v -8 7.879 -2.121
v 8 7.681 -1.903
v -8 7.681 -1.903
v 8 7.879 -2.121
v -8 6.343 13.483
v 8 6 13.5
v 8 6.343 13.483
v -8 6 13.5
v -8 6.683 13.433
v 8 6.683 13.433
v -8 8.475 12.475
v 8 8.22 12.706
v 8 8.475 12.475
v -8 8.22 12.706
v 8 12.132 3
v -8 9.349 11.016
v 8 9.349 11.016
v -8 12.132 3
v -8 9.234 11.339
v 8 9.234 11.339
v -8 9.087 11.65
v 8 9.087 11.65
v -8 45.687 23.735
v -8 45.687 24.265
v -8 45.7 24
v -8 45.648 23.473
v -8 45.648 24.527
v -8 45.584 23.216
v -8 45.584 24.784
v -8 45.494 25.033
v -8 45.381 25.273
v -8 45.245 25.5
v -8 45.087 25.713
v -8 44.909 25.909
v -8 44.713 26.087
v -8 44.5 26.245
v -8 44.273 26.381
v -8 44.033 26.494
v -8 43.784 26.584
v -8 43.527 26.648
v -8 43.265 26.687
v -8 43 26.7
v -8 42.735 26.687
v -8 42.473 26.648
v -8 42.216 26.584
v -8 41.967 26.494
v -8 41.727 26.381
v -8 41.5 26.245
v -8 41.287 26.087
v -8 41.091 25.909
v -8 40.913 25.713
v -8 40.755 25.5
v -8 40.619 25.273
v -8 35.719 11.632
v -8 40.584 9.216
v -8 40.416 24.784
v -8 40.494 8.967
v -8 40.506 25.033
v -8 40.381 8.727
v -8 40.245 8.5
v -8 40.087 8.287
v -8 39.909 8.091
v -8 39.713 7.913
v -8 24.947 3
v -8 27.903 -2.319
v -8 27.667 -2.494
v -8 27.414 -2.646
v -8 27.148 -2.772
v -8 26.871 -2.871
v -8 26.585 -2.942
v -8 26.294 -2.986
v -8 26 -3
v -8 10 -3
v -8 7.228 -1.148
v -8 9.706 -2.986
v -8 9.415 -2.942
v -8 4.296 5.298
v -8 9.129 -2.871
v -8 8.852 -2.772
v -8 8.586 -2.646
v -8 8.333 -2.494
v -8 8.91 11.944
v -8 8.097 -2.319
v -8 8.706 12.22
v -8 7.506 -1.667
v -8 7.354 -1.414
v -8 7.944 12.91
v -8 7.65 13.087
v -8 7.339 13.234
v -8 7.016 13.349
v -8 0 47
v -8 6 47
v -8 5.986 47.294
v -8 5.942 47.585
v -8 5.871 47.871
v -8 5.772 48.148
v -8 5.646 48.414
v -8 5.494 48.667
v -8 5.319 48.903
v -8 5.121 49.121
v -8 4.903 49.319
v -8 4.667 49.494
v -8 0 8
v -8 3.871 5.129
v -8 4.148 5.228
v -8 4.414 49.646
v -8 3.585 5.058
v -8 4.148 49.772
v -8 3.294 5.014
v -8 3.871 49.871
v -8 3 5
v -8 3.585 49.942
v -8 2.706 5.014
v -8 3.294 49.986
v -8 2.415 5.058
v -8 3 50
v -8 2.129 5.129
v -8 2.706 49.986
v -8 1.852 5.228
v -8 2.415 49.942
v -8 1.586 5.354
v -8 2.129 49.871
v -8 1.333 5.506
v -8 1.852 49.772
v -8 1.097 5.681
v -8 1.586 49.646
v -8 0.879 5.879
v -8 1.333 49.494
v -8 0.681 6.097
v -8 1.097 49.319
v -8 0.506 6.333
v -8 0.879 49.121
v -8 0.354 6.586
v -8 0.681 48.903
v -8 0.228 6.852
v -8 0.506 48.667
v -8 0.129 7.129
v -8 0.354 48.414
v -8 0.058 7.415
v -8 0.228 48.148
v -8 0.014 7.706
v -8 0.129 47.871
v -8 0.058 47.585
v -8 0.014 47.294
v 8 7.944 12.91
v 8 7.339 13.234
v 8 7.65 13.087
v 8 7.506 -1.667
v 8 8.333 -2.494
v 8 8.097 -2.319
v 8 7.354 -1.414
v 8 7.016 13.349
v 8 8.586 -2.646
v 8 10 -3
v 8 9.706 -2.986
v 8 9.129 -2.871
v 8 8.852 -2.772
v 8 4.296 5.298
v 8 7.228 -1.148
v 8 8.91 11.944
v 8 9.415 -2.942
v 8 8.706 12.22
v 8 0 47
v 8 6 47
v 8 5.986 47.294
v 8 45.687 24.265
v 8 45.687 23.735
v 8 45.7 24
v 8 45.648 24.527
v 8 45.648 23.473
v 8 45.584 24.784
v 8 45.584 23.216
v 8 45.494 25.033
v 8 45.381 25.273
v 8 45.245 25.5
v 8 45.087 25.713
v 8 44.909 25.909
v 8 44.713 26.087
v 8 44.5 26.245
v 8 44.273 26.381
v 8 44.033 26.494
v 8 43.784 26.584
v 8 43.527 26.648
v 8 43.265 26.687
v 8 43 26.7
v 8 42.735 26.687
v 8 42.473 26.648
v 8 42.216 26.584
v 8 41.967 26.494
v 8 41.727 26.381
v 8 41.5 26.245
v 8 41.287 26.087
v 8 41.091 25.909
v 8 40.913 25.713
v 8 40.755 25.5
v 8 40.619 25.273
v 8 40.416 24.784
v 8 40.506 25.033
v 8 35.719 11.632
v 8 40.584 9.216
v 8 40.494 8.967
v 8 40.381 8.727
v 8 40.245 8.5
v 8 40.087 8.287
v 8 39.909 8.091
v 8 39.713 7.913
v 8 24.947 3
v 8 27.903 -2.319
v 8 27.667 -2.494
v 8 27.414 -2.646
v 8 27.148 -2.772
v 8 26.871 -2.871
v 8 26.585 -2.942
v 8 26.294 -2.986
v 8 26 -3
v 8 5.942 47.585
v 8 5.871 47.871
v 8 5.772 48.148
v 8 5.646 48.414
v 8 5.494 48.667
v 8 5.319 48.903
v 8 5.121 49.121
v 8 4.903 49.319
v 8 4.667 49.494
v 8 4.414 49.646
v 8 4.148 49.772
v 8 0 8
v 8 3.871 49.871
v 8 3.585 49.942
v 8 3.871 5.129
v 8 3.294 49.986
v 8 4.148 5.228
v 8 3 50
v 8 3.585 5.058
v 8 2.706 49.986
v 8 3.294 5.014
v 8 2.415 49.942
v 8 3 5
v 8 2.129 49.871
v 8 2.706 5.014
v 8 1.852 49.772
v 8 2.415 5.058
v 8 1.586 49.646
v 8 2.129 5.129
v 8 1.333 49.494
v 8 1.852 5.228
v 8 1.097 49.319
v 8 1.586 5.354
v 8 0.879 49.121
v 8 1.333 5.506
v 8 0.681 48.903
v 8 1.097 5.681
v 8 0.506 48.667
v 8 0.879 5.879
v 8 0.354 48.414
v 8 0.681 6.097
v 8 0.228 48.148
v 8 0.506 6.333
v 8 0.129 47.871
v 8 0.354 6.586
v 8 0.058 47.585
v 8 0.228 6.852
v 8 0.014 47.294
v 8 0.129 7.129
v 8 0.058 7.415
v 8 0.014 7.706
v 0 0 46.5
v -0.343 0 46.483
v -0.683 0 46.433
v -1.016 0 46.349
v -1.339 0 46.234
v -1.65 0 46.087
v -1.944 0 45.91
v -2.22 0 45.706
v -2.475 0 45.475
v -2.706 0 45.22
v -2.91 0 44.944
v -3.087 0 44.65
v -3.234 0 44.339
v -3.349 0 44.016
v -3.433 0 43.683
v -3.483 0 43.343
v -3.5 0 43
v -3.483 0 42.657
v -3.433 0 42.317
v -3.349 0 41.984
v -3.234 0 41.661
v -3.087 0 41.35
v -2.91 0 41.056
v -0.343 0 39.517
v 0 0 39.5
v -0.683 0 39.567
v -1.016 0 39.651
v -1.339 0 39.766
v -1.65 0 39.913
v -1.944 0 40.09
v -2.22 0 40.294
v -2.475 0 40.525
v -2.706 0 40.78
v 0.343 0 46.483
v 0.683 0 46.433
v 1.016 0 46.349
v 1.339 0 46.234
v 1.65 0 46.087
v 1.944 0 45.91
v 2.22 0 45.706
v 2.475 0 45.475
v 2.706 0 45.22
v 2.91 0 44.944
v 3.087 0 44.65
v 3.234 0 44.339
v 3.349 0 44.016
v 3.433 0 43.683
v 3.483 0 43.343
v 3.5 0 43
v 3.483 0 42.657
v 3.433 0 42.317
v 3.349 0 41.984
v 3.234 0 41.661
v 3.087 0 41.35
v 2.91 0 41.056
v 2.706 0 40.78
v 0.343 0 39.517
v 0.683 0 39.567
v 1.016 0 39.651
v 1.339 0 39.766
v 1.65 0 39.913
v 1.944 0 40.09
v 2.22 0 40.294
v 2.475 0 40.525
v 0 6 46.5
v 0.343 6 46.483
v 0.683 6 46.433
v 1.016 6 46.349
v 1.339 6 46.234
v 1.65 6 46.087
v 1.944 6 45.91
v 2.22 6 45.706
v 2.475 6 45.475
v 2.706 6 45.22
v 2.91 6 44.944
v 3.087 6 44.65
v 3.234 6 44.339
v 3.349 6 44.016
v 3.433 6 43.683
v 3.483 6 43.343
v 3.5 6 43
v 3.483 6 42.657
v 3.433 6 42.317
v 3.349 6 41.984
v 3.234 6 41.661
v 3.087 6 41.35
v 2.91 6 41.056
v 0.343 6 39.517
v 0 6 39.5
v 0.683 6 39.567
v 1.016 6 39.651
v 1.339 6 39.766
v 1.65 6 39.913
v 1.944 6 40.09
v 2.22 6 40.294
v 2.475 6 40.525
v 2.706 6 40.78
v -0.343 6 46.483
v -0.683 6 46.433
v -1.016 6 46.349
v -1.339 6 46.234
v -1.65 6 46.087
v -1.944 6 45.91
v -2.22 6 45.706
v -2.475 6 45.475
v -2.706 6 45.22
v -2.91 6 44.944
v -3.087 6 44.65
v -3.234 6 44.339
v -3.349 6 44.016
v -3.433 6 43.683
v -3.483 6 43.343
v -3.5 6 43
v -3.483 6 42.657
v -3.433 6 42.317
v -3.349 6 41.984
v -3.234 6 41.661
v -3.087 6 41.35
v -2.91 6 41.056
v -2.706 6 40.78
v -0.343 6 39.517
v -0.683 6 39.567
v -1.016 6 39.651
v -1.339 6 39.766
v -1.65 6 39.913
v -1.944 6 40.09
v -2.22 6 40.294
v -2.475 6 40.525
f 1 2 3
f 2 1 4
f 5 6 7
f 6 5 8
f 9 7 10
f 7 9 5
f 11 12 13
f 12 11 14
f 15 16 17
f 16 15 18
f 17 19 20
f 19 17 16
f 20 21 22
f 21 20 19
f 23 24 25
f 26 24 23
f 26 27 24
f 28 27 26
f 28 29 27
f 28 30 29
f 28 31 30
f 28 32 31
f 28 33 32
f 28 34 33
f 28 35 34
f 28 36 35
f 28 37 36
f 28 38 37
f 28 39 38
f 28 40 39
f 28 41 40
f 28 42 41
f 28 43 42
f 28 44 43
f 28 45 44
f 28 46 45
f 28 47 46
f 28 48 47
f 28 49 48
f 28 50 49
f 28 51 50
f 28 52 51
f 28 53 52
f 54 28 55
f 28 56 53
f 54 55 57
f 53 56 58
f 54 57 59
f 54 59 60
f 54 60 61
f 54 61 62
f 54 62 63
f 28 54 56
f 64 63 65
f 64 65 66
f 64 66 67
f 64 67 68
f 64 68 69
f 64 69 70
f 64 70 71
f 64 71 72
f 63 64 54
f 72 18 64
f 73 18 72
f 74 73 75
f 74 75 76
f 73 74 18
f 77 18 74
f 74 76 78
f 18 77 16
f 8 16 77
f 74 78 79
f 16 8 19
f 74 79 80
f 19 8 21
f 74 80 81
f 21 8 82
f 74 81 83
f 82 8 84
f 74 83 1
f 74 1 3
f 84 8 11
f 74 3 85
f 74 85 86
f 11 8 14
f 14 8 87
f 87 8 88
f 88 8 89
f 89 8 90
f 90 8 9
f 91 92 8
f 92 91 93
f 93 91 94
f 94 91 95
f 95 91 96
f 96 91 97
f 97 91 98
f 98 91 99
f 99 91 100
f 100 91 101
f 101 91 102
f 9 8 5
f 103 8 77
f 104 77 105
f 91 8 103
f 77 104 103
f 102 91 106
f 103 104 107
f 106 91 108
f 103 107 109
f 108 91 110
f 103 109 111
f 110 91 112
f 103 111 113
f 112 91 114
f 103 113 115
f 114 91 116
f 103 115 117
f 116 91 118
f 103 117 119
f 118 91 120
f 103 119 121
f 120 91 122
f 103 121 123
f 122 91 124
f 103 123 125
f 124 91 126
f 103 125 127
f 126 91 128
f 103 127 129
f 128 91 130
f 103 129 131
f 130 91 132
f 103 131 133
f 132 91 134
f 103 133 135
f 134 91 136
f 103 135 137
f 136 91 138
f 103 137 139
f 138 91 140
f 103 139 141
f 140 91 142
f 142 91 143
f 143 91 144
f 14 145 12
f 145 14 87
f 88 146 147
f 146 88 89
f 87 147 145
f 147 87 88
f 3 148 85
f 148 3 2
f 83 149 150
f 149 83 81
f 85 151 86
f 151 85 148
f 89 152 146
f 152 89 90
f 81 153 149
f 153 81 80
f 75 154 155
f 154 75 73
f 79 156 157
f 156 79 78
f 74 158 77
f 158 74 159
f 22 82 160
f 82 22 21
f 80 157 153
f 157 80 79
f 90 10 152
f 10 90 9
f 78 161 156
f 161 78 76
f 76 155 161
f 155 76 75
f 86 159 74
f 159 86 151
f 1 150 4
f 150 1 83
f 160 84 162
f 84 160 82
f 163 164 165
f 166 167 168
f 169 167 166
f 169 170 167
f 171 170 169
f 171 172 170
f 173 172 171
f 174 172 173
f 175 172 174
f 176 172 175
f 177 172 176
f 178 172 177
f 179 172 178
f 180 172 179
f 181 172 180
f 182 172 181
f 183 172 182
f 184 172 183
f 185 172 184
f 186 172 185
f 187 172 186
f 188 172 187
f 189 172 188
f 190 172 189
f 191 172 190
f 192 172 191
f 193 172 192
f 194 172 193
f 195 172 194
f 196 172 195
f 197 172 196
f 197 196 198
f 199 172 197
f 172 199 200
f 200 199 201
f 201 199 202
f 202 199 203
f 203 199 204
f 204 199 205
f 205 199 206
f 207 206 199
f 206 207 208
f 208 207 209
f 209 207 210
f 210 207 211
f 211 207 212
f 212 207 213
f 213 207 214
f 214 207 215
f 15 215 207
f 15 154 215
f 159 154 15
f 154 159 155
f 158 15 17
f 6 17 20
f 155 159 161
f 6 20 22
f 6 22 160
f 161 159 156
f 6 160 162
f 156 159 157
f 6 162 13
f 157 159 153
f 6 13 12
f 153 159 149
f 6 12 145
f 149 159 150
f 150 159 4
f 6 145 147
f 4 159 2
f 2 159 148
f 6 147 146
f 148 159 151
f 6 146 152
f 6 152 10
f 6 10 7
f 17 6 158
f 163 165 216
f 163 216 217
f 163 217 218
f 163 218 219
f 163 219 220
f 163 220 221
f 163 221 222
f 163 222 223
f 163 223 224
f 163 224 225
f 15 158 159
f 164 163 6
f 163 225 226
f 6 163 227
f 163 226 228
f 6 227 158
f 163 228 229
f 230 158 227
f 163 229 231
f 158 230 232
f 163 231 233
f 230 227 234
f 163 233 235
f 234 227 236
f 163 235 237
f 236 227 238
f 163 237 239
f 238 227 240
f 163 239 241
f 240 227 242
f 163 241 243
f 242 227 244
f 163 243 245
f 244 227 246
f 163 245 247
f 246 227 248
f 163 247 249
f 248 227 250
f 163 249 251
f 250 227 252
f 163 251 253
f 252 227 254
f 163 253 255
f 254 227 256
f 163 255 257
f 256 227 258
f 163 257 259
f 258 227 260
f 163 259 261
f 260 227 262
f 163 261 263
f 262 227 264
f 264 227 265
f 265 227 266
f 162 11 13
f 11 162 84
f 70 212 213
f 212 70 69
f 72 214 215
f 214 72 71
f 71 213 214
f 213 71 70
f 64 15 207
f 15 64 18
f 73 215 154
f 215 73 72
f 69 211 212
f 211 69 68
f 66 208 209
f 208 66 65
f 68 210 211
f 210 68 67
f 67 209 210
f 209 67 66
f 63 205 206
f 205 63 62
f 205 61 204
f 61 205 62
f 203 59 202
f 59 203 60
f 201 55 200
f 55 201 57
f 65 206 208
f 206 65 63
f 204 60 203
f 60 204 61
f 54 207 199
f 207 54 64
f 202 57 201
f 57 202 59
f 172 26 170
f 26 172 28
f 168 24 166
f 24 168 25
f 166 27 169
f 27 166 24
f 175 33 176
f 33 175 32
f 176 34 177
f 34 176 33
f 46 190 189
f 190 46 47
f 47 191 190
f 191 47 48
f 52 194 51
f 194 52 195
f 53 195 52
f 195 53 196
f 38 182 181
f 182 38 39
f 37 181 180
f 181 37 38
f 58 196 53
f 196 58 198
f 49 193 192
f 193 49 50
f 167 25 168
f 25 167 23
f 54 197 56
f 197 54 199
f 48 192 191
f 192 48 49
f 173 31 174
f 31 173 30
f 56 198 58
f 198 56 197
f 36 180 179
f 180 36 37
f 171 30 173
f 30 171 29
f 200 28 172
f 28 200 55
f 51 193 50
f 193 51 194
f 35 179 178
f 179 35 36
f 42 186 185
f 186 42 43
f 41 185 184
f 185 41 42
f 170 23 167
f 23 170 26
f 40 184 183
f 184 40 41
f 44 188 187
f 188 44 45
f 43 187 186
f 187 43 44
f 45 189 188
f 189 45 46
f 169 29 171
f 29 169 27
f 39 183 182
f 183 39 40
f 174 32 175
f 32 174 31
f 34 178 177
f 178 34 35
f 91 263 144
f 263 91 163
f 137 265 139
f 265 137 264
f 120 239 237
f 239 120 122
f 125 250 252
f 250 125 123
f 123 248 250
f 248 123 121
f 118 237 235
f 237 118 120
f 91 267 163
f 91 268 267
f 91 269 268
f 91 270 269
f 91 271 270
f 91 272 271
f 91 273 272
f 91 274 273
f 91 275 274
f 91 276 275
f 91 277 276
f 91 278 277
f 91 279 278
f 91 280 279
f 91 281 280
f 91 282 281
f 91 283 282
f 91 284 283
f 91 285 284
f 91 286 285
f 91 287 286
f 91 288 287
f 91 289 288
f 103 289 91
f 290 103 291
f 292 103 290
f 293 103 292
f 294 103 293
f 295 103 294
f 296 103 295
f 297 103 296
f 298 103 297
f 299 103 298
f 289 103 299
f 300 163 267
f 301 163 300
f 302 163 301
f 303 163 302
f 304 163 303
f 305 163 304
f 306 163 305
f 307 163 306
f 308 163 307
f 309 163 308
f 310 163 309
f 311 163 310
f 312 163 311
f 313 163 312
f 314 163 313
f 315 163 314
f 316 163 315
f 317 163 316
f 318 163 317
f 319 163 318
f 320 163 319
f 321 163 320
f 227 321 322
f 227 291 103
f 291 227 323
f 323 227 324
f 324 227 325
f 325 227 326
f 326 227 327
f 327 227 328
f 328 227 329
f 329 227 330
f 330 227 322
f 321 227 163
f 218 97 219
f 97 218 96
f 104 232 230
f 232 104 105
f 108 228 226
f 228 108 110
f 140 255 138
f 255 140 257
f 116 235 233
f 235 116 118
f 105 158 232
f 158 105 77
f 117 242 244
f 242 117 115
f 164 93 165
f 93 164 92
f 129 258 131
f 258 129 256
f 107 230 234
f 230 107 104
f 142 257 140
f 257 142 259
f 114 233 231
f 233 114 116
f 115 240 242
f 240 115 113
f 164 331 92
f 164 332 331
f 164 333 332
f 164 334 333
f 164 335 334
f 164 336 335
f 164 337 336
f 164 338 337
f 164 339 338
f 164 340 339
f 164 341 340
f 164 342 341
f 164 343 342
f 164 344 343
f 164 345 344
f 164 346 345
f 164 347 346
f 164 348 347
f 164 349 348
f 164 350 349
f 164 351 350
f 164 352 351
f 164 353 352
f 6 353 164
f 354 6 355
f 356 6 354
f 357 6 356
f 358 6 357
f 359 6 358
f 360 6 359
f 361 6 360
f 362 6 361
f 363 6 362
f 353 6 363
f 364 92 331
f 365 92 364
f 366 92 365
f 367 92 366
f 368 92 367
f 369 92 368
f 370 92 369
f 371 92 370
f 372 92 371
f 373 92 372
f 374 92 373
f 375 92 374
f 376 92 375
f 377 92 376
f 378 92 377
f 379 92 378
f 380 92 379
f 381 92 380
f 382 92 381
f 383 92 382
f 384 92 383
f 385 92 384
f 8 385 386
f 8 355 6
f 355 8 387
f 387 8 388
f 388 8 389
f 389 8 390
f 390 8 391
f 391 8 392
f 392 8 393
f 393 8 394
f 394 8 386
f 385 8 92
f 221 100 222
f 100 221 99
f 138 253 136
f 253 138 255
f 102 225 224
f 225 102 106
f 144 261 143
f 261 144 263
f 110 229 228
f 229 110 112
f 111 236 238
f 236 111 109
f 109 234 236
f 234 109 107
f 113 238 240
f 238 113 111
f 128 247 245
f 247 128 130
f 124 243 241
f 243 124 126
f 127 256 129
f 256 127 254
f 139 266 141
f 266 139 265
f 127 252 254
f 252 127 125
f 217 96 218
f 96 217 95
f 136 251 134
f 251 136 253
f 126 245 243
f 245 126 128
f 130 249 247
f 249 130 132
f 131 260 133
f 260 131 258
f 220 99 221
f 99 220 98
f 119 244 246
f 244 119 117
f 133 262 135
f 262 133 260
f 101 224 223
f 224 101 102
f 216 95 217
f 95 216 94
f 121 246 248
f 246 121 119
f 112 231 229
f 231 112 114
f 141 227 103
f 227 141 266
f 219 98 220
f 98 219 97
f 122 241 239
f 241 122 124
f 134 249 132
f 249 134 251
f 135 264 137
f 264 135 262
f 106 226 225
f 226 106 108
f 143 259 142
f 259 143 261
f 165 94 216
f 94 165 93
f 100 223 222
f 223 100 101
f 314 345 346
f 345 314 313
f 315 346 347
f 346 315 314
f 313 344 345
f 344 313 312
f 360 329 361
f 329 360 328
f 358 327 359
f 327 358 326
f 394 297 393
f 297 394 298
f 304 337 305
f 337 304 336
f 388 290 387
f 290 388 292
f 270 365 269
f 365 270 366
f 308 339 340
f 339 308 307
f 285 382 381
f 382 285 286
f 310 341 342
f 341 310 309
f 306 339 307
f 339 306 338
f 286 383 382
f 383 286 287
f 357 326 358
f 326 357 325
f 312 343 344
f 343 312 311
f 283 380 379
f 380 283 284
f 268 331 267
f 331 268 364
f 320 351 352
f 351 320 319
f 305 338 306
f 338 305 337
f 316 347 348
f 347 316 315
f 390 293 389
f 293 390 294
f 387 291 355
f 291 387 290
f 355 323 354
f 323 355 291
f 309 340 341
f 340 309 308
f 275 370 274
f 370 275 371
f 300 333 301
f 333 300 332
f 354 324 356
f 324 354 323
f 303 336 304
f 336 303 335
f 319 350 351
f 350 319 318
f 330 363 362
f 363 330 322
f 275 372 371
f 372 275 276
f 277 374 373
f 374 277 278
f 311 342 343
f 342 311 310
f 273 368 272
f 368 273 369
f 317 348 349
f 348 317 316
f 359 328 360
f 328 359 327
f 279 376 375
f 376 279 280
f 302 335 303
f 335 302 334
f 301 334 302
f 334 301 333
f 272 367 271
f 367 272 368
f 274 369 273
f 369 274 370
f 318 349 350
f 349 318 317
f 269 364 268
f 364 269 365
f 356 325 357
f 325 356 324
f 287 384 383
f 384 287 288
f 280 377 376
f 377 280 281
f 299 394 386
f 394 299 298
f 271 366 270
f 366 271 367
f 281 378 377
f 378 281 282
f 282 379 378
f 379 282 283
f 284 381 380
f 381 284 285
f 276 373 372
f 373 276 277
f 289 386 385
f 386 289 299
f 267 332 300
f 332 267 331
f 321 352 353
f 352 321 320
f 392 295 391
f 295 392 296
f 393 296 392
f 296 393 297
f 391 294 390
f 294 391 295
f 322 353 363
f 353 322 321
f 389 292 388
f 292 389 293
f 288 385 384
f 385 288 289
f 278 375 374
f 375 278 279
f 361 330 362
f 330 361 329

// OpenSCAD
$fn = 64;

// --- Dimensions ---
width = 16;           // Width of the hook (X axis)
thickness = 6;        // Base thickness (Y axis) and Profile Diameter
total_height = 55;    // Total height (Z axis)

// --- Screw Dimensions (M3 Flat Head) ---
screw_hole_diam = 3.4;    
screw_head_diam = 7.0;    
screw_head_depth = 2.4;   
screw_pos_z = total_height - 12; 

module sleek_hook() {
    
    // Path points [Y_offset_from_plate_front, Z_coord]
    // Z=0 is bottom of the J-curve
    // The Backplate bottom is roughly Z=8
    path = [
        [0, 10],   // P0: Buried in plate
        [4, 0],    // P1: Bottom of curve starts
        [20, 0],   // P2: Bottom flat area
        [32, 10],  // P3: Up
        [37, 24]   // P4: Tip
    ];
    
    // Thickness profile (Diameter of the arm at each point)
    // We taper slightly for elegance
    d_profile = [
        thickness + 1, // P0: Slightly thicker connection
        thickness,     // P1
        thickness,     // P2
        thickness * 0.9, // P3
        thickness * 0.9  // P4
    ];
    
    // --- 1. Backplate ---
    // A rounded rectangle
    difference() {
        hull() {
            // Main block
            translate([-width/2, 0, width/2])
                cube([width, thickness, total_height - width]);
            
            // Top Round
            translate([0, thickness/2, total_height - width/2])
                rotate([0, 90, 0])
                cylinder(d=thickness, h=width, center=true);

            // Bottom Round
            translate([0, thickness/2, width/2])
                rotate([0, 90, 0])
                cylinder(d=thickness, h=width, center=true);
        }
        // Screw hole is subtracted in final_assembly
    }
    
    // --- 2. Hook Arm ---
    // Hull chain
    
    // Transition from Backplate to P0
    // Backplate surface is Y=thickness. P0 is at Y=thickness.
    
    union() {
        for (i = [0 : len(path)-2]) {
            hull() {
                translate([0, thickness + path[i][0], path[i][1]])
                    rotate([0, 90, 0])
                    cylinder(d=d_profile[i], h=width, center=true);
                
                translate([0, thickness + path[i+1][0], path[i+1][1]])
                    rotate([0, 90, 0])
                    cylinder(d=d_profile[i+1], h=width, center=true);
            }
        }
    }
}

module final_assembly() {
    difference() {
        sleek_hook();
        
        // --- Screw Hole ---
        // Situated at screw_pos_z
        translate([0, thickness, screw_pos_z]) 
        rotate([90, 0, 0]) {
            // Drill through (Shaft)
            translate([0,0,-20]) cylinder(d=screw_hole_diam, h=50);
            
            // Countersink
            // Tip at -screw_head_depth, Rim at 0 (Flush with front face)
            translate([0,0,-screw_head_depth])
                cylinder(d1=screw_hole_diam, d2=screw_head_diam, h=screw_head_depth);
            
            // Entrance clearance (in case head sticks out or just air)
            cylinder(d=screw_head_diam, h=10);
        }
    }
}

final_assembly();

// Echo dimensions for user check
x_dim = width;
y_dim = thickness + 37; // Approx
z_dim = total_height;
echo("Approx Dimensions:", x_dim, y_dim, z_dim);
